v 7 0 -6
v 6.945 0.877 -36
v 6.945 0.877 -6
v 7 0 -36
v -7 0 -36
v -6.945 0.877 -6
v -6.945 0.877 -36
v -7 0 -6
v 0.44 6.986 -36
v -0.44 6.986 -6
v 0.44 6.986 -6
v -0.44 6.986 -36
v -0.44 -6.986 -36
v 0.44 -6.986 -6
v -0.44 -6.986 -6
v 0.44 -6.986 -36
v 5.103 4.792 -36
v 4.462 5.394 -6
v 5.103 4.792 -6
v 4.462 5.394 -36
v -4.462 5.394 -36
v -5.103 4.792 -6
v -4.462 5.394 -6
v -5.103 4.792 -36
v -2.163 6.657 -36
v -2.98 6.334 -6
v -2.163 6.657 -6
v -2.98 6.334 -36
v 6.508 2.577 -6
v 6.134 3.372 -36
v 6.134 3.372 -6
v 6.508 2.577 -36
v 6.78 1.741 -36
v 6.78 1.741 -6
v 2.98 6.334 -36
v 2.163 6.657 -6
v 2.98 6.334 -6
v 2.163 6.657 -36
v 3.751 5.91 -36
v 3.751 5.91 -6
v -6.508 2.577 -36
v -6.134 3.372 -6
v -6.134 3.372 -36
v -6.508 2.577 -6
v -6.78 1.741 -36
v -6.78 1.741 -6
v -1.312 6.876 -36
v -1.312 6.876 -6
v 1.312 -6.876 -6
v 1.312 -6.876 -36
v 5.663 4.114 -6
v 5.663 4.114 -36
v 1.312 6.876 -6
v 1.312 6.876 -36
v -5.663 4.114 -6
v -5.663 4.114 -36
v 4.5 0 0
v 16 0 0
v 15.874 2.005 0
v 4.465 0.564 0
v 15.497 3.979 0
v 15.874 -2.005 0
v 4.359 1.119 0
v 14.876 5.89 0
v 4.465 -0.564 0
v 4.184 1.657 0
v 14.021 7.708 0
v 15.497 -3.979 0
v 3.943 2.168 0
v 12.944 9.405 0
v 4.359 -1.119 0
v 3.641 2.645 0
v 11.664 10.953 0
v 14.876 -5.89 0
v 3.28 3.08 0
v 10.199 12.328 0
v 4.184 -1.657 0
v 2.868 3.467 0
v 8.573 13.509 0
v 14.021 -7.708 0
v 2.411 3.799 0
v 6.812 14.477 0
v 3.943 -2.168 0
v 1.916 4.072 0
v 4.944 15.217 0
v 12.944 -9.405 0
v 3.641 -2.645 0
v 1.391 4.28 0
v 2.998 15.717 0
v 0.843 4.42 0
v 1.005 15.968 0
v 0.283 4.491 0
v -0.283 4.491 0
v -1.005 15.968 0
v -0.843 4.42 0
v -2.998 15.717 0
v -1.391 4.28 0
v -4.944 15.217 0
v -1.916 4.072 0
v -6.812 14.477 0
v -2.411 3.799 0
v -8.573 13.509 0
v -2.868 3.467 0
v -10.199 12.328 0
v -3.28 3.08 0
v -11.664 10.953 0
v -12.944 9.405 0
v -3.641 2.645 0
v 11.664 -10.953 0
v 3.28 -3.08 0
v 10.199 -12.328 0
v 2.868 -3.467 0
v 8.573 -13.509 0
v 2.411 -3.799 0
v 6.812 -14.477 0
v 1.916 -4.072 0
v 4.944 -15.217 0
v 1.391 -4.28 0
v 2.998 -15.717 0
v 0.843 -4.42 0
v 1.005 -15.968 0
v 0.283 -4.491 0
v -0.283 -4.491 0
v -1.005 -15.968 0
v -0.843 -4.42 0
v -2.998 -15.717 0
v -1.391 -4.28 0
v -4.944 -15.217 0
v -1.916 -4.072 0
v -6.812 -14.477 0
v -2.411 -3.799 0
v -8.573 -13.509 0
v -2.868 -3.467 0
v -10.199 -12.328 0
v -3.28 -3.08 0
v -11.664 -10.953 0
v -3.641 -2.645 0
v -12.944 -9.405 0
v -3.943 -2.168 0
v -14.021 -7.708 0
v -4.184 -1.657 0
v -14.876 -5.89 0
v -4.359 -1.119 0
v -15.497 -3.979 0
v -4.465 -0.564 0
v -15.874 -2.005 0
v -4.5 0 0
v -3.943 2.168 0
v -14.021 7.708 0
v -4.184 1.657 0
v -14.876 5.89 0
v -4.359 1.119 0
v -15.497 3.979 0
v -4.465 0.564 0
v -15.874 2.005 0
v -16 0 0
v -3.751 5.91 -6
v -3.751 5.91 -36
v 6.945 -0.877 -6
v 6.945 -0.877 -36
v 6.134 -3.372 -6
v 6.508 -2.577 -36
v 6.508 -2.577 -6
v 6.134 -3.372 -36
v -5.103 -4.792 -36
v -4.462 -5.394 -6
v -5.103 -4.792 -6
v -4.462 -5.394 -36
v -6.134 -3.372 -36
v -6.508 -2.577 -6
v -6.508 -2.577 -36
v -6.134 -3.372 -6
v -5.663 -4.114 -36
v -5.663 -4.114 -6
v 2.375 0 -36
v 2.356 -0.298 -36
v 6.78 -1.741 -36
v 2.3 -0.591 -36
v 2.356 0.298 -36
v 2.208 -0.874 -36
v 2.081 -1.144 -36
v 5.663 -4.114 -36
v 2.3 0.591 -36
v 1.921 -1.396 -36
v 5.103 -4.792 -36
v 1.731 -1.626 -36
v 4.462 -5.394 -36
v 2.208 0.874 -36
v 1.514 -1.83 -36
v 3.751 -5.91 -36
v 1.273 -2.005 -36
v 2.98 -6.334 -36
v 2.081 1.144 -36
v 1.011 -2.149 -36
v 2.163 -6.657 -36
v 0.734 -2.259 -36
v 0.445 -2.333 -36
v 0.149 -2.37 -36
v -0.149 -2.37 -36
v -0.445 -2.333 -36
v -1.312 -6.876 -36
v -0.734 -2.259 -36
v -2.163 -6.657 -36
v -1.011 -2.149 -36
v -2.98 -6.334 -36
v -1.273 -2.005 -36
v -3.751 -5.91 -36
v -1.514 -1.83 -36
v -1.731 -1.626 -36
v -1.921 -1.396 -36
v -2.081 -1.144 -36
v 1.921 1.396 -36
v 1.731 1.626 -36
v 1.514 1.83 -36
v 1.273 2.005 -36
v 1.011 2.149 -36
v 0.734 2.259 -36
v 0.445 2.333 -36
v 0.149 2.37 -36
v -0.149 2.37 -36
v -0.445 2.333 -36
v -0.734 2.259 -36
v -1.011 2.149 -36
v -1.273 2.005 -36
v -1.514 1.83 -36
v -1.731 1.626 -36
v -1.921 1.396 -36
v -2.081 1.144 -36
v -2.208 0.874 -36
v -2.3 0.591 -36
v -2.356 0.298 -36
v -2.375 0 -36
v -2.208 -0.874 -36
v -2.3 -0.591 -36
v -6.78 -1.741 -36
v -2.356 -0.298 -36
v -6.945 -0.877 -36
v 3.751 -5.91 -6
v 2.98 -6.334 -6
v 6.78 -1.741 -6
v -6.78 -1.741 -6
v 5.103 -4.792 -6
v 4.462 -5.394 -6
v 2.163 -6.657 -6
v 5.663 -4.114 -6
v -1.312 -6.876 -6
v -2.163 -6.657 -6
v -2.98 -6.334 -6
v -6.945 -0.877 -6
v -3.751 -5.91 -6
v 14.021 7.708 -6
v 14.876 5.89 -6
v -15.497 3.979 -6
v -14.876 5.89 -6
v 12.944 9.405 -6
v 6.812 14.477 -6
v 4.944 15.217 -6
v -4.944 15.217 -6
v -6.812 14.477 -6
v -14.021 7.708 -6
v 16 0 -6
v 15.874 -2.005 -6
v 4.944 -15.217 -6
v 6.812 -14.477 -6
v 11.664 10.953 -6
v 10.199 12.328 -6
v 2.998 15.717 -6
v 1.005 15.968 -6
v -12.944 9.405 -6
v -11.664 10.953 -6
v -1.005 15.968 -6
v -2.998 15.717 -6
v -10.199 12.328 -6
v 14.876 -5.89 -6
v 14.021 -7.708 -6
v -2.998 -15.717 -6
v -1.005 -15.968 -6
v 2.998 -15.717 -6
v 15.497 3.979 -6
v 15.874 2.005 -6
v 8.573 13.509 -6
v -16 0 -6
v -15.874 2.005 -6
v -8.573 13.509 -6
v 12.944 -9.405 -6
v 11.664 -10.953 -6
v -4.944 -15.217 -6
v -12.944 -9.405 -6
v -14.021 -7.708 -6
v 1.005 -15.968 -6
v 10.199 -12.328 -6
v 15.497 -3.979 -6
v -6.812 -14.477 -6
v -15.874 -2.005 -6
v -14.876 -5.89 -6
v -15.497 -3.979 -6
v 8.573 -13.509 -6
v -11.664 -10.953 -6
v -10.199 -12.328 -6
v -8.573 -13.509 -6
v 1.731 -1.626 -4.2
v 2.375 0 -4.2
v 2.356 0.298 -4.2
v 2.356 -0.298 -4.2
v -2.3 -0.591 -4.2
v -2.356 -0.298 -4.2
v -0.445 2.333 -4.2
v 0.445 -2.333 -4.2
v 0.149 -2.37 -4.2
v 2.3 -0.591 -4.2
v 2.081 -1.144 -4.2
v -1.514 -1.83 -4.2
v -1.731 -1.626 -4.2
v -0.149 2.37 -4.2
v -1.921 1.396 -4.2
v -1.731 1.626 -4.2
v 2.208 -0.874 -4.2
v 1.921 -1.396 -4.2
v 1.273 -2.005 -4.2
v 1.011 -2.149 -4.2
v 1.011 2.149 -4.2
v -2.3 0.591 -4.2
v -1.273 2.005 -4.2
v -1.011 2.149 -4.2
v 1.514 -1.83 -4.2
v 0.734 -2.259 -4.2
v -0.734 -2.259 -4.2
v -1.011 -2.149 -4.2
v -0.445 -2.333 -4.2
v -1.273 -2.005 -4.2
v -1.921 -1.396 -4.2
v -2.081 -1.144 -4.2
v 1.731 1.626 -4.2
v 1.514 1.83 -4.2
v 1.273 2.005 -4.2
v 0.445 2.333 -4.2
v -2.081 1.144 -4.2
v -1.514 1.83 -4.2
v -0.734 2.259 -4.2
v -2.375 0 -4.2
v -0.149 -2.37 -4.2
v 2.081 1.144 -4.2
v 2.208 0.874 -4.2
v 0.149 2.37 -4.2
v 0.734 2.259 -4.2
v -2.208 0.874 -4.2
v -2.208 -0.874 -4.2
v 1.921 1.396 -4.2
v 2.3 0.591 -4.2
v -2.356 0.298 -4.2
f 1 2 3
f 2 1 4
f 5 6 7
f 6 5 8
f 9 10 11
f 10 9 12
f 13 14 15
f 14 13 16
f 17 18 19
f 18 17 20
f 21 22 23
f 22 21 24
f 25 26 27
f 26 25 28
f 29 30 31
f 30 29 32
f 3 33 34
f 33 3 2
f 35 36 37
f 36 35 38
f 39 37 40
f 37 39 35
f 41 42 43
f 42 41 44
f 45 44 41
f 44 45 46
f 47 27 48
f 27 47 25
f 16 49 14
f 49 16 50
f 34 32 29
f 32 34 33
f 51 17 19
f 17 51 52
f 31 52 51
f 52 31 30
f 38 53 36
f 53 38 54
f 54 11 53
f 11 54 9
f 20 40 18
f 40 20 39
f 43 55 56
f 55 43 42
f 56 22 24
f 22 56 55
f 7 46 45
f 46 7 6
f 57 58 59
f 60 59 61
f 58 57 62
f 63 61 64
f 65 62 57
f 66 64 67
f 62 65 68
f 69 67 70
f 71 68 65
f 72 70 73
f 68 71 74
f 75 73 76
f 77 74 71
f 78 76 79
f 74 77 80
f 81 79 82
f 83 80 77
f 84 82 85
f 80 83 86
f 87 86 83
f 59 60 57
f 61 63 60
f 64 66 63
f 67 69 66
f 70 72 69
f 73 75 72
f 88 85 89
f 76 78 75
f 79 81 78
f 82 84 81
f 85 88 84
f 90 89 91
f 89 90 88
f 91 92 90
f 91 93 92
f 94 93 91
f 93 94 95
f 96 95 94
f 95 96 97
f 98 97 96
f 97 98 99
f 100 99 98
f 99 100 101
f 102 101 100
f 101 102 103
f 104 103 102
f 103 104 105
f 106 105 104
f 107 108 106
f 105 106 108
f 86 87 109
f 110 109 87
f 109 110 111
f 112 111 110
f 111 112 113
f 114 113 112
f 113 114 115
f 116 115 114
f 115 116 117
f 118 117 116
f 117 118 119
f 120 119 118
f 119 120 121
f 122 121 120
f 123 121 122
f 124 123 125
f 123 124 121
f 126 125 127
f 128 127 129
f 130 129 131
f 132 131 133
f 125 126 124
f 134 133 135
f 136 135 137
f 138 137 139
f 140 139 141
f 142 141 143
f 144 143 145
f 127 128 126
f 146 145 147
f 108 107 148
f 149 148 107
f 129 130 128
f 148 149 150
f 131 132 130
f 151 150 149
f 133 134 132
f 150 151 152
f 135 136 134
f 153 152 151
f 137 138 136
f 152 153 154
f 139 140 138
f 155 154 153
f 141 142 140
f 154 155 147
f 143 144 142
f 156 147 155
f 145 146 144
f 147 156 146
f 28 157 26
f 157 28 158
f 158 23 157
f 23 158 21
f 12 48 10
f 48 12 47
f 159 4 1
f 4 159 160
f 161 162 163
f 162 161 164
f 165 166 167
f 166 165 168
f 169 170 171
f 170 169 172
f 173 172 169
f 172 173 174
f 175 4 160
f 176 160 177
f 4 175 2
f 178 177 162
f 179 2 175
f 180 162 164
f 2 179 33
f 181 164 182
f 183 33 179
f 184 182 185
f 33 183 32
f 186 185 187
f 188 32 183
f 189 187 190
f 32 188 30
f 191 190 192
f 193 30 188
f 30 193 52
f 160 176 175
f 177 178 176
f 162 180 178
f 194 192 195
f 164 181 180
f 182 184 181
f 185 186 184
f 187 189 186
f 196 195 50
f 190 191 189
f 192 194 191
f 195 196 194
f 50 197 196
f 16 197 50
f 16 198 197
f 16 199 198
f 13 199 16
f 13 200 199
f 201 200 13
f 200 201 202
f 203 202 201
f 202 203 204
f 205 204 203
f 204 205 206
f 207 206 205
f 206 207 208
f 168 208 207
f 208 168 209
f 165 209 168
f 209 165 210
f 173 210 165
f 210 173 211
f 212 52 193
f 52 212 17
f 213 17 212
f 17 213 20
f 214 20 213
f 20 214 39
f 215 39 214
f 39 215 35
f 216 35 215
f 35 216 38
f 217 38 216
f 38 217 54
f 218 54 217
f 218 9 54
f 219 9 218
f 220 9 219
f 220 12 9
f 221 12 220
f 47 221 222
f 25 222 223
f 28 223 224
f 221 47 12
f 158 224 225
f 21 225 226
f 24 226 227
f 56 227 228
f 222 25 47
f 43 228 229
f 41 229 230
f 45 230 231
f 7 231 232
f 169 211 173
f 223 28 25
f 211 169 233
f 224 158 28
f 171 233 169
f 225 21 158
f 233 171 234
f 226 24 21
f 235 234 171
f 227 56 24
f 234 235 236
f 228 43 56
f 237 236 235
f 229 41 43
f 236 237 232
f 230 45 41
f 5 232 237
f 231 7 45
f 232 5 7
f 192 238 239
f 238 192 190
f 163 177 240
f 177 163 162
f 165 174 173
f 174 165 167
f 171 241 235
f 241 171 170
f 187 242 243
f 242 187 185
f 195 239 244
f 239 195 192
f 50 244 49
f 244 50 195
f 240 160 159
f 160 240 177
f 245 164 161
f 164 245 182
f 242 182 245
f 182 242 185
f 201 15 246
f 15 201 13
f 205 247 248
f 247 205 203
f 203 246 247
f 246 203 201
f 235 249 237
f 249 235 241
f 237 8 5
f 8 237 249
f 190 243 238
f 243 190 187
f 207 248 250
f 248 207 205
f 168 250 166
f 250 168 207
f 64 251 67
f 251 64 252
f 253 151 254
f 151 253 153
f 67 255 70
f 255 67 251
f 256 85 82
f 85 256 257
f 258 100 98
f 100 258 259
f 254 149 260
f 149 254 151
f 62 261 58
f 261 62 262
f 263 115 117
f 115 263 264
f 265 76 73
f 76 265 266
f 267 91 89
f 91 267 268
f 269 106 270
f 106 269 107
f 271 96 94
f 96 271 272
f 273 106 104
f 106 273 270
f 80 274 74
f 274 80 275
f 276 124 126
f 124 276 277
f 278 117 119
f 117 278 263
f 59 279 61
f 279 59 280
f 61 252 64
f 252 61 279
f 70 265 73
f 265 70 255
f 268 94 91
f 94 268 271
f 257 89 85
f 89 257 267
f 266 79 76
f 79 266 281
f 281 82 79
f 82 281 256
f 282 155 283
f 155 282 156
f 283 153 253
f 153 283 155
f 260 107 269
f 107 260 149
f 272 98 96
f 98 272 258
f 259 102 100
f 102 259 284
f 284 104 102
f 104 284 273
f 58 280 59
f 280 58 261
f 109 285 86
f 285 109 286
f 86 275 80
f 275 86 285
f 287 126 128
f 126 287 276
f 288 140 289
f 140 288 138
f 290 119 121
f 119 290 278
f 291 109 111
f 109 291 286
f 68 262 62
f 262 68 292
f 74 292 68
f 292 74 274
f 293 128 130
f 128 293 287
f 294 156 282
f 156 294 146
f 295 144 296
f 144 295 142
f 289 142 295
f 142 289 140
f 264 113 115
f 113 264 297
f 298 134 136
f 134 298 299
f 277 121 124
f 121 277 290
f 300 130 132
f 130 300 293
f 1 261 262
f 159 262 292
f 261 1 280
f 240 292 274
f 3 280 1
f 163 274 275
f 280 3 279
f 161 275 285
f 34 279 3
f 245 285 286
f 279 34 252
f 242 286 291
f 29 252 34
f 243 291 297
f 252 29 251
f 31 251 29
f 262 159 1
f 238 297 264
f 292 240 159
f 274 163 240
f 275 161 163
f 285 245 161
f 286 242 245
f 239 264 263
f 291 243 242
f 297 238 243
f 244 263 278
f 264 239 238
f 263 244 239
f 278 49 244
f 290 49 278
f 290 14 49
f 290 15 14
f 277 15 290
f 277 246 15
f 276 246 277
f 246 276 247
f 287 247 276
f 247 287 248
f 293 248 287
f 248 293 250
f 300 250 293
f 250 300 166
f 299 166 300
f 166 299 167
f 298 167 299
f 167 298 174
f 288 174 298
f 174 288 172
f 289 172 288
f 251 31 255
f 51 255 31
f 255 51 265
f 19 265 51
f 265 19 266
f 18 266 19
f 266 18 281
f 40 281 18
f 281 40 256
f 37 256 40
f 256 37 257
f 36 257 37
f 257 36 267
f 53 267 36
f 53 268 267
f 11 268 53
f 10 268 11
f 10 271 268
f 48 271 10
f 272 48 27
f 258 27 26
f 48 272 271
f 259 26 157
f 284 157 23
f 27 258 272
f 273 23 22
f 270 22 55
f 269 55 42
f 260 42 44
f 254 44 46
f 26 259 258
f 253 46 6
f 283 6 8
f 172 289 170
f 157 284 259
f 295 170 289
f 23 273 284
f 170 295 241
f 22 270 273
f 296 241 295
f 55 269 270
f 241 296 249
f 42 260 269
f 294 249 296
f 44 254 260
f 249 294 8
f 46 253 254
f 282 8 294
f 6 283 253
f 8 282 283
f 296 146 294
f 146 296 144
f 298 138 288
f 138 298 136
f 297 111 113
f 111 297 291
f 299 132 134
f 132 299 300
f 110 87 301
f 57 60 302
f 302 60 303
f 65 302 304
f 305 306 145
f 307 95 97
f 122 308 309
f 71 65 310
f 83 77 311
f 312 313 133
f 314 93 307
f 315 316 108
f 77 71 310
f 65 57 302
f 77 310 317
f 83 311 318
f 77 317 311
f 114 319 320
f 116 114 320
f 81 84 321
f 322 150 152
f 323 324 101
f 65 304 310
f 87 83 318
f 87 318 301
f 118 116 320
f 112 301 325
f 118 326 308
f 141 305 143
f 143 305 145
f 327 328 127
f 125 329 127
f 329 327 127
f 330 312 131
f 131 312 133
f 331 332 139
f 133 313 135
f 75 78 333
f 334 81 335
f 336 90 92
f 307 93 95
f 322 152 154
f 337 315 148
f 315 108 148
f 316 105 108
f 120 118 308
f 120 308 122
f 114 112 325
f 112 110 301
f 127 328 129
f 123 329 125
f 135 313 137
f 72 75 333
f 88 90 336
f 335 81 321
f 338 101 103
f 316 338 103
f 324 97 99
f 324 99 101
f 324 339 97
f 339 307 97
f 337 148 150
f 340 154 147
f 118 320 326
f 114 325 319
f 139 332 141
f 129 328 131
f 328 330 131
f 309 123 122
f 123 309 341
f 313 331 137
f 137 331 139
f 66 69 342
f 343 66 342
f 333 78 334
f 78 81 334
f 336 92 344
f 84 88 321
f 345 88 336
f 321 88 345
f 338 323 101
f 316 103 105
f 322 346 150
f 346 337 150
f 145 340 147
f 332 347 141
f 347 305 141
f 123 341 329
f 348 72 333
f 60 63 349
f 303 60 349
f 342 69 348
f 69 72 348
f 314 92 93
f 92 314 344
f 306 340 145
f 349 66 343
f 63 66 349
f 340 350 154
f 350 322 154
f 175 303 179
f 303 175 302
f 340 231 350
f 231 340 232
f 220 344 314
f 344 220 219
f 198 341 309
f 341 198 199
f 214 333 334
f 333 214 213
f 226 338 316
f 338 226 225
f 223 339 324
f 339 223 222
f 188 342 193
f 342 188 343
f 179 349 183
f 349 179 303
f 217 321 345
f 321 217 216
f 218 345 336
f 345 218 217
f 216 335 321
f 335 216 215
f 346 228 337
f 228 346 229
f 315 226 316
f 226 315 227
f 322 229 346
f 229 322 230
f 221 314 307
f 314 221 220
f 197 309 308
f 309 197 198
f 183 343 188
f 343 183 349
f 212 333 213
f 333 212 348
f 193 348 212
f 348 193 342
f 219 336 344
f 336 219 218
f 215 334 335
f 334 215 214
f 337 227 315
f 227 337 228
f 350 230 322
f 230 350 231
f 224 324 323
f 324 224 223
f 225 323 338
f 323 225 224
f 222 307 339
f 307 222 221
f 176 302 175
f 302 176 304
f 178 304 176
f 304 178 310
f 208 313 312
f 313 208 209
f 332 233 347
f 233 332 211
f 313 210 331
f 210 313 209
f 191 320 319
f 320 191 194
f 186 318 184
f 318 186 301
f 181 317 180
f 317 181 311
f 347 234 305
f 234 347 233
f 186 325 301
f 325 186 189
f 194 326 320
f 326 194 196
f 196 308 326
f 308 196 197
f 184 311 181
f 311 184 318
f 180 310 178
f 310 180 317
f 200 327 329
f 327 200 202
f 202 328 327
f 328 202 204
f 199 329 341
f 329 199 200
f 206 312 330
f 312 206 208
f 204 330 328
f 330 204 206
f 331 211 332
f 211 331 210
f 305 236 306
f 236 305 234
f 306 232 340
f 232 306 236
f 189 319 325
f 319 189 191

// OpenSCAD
$fn = 50;


difference() {
	union() {
		translate(v = [0, 0, -36.0000000000]) {
			cylinder(h = 36, r = 7.0000000000);
		}
		translate(v = [0, 0, -6.0000000000]) {
			cylinder(h = 6, r = 16.0000000000);
		}
	}
	union() {
		translate(v = [0, 0, 0]) {
			rotate(a = [0, 0, 0]) {
				difference() {
					union() {
						#translate(v = [0, 0, -36.0000000000]) {
							cylinder(h = 36, r = 2.2500000000);
						}
						#translate(v = [0, 0, -4.2000000000]) {
							cylinder(h = 4.2000000000, r = 7.0000000000, r1 = 2.3750000000, r2 = 4.5000000000);
						}
						#translate(v = [0, 0, -36.0000000000]) {
							cylinder(h = 36, r = 2.3750000000);
						}
						#translate(v = [0, 0, -36.0000000000]) {
							cylinder(h = 36, r = 2.2500000000);
						}
					}
					union();
				}
			}
		}
	}
}
